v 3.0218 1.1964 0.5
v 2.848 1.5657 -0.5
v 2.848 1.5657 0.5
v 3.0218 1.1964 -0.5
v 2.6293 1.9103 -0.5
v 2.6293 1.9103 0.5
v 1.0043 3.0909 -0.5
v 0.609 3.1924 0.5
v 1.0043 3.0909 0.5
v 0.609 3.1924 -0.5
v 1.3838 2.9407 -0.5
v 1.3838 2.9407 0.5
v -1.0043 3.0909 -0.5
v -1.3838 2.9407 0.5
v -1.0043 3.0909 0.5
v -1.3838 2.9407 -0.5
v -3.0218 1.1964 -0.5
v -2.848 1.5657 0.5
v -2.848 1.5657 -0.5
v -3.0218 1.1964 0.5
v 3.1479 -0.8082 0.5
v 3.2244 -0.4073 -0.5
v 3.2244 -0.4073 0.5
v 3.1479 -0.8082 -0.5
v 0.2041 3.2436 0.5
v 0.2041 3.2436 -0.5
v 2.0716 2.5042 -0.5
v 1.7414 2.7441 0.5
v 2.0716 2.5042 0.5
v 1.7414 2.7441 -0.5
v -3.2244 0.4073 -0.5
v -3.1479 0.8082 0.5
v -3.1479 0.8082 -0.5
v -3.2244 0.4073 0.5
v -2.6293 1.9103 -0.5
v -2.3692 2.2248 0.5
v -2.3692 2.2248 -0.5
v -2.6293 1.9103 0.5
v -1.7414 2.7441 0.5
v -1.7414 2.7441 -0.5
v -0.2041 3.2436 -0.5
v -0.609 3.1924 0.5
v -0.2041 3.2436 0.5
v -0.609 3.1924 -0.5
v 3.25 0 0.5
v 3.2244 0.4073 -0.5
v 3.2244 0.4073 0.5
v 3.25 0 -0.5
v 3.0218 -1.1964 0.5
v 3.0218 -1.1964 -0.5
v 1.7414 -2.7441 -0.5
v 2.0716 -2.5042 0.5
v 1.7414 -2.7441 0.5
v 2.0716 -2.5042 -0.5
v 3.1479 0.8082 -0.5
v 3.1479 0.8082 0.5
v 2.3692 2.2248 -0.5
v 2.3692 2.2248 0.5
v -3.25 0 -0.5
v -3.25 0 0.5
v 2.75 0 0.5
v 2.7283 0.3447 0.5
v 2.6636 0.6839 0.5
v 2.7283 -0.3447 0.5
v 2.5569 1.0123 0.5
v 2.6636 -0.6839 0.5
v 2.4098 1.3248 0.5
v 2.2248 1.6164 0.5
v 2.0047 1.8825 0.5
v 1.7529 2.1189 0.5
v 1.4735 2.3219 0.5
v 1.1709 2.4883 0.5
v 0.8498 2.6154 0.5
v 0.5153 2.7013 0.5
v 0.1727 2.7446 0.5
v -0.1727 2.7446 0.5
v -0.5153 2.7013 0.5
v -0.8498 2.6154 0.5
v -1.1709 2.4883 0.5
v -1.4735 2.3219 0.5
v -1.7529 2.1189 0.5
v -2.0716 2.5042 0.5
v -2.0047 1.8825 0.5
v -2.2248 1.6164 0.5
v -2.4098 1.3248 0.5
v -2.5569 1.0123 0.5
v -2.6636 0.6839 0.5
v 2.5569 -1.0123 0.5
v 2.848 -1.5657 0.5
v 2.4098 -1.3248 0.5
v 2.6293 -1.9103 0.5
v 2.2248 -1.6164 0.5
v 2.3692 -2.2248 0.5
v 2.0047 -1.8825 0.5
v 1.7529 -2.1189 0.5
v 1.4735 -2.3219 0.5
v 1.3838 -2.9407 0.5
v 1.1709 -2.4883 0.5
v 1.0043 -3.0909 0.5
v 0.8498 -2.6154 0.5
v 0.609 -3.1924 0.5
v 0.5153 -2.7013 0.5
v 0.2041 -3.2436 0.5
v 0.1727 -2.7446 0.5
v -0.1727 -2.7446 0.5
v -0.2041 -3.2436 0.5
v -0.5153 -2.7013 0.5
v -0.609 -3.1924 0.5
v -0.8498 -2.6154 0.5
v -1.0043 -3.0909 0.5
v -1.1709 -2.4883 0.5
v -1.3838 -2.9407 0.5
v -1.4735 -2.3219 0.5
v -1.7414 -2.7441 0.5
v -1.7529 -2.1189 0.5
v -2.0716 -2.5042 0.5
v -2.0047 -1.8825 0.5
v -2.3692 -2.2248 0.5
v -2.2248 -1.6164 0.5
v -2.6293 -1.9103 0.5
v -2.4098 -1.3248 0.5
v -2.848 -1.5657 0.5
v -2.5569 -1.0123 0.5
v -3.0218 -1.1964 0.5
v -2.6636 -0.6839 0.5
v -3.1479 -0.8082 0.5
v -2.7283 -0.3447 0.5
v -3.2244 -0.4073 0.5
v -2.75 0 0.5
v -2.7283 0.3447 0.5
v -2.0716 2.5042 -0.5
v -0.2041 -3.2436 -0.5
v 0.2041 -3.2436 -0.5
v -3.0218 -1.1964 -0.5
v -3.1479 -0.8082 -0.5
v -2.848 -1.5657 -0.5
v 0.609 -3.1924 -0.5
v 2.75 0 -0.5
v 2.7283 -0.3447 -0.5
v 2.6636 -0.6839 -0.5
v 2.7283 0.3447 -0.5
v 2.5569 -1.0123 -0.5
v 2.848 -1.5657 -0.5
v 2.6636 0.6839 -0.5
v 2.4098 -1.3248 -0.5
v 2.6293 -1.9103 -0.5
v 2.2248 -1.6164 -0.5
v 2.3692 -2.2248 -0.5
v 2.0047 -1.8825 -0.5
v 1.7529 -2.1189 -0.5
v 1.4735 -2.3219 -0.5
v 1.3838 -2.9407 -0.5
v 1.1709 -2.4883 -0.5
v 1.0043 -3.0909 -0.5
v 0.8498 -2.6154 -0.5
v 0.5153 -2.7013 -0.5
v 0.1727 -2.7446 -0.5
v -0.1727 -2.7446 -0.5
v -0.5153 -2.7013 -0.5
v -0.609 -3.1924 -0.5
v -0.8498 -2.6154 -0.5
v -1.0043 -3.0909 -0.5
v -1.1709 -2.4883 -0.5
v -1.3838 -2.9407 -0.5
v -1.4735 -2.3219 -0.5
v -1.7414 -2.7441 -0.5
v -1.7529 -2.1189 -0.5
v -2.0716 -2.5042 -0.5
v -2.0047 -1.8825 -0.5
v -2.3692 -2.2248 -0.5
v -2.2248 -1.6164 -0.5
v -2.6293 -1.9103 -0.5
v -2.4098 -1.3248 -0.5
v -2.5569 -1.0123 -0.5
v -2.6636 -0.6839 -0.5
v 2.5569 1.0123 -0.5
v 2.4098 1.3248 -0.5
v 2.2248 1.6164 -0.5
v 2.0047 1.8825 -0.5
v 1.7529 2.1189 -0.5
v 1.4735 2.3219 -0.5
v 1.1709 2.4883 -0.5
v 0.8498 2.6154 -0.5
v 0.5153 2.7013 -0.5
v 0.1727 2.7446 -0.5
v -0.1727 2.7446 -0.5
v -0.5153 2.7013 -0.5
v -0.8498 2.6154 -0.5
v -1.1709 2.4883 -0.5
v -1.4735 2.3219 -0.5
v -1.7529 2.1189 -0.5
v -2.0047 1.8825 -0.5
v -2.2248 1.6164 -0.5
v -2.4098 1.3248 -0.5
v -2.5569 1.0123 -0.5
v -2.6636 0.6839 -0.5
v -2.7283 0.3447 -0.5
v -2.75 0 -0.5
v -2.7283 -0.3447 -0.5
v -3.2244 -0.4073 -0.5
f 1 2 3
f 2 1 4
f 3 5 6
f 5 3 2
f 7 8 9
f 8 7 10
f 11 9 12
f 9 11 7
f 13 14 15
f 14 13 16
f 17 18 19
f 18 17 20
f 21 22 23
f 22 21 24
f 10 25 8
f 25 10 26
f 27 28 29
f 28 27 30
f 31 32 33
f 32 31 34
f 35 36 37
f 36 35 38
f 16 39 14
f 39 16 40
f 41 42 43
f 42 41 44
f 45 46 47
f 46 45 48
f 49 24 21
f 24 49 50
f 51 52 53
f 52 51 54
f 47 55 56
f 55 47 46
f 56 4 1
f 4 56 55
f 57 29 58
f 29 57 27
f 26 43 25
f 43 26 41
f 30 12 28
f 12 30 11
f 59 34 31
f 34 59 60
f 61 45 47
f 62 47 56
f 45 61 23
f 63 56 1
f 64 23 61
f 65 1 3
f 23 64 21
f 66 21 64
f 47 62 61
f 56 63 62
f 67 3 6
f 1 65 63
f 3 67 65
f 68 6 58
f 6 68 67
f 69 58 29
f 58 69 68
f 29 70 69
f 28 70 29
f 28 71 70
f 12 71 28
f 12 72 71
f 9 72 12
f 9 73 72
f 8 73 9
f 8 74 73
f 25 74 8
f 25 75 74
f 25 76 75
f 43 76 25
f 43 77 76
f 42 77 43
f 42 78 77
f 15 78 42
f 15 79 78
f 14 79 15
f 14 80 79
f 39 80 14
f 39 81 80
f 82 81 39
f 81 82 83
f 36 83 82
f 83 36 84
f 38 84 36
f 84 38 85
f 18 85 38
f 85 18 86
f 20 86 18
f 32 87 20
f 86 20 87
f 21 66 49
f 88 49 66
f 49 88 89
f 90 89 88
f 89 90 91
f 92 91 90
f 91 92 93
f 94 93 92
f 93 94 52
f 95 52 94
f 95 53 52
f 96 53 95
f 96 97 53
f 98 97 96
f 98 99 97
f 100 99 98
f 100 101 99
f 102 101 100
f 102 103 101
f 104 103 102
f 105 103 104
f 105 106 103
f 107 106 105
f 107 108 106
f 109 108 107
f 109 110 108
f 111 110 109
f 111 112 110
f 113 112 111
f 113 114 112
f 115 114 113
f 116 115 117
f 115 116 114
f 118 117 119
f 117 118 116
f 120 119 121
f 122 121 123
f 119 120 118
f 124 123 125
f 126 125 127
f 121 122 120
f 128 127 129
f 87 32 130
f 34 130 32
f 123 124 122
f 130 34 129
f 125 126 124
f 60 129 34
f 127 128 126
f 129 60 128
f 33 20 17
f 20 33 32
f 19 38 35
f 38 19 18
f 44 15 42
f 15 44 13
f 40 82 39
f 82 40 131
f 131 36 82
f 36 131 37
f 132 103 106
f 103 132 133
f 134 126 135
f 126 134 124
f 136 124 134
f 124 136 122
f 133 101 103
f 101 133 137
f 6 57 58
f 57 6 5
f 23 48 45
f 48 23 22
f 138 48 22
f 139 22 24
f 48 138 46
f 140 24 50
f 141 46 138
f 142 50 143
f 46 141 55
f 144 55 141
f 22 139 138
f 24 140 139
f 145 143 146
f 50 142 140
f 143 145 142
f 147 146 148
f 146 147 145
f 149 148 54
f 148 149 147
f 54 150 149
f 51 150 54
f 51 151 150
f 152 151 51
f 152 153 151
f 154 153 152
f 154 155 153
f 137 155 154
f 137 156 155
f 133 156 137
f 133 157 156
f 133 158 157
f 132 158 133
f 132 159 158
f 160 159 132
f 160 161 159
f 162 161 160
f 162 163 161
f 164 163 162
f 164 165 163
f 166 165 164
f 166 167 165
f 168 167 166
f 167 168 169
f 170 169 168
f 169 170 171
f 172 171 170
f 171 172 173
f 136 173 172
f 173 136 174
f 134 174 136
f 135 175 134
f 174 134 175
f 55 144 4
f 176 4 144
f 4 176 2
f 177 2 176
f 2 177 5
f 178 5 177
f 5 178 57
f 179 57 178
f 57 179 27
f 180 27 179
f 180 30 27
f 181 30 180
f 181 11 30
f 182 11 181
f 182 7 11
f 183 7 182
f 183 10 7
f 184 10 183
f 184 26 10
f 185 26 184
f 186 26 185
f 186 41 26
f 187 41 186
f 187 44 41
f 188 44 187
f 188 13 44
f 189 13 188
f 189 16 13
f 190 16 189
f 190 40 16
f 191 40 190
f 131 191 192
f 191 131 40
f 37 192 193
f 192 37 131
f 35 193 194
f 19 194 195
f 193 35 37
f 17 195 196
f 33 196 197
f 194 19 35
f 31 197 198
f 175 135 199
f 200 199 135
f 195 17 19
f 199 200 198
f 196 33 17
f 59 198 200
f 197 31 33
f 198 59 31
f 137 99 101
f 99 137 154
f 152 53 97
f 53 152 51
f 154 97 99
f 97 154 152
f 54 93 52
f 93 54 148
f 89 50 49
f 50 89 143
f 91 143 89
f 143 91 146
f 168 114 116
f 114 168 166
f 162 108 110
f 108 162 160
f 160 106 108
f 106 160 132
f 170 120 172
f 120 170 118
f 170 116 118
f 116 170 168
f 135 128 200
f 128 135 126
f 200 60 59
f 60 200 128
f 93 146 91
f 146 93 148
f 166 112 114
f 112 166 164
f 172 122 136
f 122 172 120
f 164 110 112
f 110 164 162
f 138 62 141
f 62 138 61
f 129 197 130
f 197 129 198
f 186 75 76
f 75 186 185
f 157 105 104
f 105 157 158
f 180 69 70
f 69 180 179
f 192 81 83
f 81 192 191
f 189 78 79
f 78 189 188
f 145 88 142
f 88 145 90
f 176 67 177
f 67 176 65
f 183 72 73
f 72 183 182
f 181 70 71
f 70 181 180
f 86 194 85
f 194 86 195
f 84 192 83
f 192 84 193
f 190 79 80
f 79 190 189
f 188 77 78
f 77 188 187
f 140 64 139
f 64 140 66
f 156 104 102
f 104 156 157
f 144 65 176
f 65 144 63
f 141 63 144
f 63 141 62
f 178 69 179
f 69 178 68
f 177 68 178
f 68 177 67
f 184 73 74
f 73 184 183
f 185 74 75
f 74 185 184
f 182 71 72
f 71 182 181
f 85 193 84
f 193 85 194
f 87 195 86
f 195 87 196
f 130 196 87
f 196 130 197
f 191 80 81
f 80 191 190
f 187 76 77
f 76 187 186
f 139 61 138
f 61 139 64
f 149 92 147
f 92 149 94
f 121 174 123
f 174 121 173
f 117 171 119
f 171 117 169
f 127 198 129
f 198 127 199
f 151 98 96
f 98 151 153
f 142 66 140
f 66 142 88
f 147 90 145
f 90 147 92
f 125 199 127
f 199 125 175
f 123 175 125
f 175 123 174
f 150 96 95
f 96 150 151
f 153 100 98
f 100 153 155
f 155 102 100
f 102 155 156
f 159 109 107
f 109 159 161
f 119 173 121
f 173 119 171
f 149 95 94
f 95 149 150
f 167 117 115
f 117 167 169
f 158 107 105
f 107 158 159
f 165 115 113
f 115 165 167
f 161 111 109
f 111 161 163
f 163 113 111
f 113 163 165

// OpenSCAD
$fn = 50;


difference() {
	union() {
		translate(v = [0, 0, -0.5000000000]) {
			cylinder(h = 1, r = 3.2500000000);
		}
	}
	union() {
		translate(v = [0, 0, -100.0000000000]) {
			cylinder(h = 200, r = 2.7500000000);
		}
	}
}
